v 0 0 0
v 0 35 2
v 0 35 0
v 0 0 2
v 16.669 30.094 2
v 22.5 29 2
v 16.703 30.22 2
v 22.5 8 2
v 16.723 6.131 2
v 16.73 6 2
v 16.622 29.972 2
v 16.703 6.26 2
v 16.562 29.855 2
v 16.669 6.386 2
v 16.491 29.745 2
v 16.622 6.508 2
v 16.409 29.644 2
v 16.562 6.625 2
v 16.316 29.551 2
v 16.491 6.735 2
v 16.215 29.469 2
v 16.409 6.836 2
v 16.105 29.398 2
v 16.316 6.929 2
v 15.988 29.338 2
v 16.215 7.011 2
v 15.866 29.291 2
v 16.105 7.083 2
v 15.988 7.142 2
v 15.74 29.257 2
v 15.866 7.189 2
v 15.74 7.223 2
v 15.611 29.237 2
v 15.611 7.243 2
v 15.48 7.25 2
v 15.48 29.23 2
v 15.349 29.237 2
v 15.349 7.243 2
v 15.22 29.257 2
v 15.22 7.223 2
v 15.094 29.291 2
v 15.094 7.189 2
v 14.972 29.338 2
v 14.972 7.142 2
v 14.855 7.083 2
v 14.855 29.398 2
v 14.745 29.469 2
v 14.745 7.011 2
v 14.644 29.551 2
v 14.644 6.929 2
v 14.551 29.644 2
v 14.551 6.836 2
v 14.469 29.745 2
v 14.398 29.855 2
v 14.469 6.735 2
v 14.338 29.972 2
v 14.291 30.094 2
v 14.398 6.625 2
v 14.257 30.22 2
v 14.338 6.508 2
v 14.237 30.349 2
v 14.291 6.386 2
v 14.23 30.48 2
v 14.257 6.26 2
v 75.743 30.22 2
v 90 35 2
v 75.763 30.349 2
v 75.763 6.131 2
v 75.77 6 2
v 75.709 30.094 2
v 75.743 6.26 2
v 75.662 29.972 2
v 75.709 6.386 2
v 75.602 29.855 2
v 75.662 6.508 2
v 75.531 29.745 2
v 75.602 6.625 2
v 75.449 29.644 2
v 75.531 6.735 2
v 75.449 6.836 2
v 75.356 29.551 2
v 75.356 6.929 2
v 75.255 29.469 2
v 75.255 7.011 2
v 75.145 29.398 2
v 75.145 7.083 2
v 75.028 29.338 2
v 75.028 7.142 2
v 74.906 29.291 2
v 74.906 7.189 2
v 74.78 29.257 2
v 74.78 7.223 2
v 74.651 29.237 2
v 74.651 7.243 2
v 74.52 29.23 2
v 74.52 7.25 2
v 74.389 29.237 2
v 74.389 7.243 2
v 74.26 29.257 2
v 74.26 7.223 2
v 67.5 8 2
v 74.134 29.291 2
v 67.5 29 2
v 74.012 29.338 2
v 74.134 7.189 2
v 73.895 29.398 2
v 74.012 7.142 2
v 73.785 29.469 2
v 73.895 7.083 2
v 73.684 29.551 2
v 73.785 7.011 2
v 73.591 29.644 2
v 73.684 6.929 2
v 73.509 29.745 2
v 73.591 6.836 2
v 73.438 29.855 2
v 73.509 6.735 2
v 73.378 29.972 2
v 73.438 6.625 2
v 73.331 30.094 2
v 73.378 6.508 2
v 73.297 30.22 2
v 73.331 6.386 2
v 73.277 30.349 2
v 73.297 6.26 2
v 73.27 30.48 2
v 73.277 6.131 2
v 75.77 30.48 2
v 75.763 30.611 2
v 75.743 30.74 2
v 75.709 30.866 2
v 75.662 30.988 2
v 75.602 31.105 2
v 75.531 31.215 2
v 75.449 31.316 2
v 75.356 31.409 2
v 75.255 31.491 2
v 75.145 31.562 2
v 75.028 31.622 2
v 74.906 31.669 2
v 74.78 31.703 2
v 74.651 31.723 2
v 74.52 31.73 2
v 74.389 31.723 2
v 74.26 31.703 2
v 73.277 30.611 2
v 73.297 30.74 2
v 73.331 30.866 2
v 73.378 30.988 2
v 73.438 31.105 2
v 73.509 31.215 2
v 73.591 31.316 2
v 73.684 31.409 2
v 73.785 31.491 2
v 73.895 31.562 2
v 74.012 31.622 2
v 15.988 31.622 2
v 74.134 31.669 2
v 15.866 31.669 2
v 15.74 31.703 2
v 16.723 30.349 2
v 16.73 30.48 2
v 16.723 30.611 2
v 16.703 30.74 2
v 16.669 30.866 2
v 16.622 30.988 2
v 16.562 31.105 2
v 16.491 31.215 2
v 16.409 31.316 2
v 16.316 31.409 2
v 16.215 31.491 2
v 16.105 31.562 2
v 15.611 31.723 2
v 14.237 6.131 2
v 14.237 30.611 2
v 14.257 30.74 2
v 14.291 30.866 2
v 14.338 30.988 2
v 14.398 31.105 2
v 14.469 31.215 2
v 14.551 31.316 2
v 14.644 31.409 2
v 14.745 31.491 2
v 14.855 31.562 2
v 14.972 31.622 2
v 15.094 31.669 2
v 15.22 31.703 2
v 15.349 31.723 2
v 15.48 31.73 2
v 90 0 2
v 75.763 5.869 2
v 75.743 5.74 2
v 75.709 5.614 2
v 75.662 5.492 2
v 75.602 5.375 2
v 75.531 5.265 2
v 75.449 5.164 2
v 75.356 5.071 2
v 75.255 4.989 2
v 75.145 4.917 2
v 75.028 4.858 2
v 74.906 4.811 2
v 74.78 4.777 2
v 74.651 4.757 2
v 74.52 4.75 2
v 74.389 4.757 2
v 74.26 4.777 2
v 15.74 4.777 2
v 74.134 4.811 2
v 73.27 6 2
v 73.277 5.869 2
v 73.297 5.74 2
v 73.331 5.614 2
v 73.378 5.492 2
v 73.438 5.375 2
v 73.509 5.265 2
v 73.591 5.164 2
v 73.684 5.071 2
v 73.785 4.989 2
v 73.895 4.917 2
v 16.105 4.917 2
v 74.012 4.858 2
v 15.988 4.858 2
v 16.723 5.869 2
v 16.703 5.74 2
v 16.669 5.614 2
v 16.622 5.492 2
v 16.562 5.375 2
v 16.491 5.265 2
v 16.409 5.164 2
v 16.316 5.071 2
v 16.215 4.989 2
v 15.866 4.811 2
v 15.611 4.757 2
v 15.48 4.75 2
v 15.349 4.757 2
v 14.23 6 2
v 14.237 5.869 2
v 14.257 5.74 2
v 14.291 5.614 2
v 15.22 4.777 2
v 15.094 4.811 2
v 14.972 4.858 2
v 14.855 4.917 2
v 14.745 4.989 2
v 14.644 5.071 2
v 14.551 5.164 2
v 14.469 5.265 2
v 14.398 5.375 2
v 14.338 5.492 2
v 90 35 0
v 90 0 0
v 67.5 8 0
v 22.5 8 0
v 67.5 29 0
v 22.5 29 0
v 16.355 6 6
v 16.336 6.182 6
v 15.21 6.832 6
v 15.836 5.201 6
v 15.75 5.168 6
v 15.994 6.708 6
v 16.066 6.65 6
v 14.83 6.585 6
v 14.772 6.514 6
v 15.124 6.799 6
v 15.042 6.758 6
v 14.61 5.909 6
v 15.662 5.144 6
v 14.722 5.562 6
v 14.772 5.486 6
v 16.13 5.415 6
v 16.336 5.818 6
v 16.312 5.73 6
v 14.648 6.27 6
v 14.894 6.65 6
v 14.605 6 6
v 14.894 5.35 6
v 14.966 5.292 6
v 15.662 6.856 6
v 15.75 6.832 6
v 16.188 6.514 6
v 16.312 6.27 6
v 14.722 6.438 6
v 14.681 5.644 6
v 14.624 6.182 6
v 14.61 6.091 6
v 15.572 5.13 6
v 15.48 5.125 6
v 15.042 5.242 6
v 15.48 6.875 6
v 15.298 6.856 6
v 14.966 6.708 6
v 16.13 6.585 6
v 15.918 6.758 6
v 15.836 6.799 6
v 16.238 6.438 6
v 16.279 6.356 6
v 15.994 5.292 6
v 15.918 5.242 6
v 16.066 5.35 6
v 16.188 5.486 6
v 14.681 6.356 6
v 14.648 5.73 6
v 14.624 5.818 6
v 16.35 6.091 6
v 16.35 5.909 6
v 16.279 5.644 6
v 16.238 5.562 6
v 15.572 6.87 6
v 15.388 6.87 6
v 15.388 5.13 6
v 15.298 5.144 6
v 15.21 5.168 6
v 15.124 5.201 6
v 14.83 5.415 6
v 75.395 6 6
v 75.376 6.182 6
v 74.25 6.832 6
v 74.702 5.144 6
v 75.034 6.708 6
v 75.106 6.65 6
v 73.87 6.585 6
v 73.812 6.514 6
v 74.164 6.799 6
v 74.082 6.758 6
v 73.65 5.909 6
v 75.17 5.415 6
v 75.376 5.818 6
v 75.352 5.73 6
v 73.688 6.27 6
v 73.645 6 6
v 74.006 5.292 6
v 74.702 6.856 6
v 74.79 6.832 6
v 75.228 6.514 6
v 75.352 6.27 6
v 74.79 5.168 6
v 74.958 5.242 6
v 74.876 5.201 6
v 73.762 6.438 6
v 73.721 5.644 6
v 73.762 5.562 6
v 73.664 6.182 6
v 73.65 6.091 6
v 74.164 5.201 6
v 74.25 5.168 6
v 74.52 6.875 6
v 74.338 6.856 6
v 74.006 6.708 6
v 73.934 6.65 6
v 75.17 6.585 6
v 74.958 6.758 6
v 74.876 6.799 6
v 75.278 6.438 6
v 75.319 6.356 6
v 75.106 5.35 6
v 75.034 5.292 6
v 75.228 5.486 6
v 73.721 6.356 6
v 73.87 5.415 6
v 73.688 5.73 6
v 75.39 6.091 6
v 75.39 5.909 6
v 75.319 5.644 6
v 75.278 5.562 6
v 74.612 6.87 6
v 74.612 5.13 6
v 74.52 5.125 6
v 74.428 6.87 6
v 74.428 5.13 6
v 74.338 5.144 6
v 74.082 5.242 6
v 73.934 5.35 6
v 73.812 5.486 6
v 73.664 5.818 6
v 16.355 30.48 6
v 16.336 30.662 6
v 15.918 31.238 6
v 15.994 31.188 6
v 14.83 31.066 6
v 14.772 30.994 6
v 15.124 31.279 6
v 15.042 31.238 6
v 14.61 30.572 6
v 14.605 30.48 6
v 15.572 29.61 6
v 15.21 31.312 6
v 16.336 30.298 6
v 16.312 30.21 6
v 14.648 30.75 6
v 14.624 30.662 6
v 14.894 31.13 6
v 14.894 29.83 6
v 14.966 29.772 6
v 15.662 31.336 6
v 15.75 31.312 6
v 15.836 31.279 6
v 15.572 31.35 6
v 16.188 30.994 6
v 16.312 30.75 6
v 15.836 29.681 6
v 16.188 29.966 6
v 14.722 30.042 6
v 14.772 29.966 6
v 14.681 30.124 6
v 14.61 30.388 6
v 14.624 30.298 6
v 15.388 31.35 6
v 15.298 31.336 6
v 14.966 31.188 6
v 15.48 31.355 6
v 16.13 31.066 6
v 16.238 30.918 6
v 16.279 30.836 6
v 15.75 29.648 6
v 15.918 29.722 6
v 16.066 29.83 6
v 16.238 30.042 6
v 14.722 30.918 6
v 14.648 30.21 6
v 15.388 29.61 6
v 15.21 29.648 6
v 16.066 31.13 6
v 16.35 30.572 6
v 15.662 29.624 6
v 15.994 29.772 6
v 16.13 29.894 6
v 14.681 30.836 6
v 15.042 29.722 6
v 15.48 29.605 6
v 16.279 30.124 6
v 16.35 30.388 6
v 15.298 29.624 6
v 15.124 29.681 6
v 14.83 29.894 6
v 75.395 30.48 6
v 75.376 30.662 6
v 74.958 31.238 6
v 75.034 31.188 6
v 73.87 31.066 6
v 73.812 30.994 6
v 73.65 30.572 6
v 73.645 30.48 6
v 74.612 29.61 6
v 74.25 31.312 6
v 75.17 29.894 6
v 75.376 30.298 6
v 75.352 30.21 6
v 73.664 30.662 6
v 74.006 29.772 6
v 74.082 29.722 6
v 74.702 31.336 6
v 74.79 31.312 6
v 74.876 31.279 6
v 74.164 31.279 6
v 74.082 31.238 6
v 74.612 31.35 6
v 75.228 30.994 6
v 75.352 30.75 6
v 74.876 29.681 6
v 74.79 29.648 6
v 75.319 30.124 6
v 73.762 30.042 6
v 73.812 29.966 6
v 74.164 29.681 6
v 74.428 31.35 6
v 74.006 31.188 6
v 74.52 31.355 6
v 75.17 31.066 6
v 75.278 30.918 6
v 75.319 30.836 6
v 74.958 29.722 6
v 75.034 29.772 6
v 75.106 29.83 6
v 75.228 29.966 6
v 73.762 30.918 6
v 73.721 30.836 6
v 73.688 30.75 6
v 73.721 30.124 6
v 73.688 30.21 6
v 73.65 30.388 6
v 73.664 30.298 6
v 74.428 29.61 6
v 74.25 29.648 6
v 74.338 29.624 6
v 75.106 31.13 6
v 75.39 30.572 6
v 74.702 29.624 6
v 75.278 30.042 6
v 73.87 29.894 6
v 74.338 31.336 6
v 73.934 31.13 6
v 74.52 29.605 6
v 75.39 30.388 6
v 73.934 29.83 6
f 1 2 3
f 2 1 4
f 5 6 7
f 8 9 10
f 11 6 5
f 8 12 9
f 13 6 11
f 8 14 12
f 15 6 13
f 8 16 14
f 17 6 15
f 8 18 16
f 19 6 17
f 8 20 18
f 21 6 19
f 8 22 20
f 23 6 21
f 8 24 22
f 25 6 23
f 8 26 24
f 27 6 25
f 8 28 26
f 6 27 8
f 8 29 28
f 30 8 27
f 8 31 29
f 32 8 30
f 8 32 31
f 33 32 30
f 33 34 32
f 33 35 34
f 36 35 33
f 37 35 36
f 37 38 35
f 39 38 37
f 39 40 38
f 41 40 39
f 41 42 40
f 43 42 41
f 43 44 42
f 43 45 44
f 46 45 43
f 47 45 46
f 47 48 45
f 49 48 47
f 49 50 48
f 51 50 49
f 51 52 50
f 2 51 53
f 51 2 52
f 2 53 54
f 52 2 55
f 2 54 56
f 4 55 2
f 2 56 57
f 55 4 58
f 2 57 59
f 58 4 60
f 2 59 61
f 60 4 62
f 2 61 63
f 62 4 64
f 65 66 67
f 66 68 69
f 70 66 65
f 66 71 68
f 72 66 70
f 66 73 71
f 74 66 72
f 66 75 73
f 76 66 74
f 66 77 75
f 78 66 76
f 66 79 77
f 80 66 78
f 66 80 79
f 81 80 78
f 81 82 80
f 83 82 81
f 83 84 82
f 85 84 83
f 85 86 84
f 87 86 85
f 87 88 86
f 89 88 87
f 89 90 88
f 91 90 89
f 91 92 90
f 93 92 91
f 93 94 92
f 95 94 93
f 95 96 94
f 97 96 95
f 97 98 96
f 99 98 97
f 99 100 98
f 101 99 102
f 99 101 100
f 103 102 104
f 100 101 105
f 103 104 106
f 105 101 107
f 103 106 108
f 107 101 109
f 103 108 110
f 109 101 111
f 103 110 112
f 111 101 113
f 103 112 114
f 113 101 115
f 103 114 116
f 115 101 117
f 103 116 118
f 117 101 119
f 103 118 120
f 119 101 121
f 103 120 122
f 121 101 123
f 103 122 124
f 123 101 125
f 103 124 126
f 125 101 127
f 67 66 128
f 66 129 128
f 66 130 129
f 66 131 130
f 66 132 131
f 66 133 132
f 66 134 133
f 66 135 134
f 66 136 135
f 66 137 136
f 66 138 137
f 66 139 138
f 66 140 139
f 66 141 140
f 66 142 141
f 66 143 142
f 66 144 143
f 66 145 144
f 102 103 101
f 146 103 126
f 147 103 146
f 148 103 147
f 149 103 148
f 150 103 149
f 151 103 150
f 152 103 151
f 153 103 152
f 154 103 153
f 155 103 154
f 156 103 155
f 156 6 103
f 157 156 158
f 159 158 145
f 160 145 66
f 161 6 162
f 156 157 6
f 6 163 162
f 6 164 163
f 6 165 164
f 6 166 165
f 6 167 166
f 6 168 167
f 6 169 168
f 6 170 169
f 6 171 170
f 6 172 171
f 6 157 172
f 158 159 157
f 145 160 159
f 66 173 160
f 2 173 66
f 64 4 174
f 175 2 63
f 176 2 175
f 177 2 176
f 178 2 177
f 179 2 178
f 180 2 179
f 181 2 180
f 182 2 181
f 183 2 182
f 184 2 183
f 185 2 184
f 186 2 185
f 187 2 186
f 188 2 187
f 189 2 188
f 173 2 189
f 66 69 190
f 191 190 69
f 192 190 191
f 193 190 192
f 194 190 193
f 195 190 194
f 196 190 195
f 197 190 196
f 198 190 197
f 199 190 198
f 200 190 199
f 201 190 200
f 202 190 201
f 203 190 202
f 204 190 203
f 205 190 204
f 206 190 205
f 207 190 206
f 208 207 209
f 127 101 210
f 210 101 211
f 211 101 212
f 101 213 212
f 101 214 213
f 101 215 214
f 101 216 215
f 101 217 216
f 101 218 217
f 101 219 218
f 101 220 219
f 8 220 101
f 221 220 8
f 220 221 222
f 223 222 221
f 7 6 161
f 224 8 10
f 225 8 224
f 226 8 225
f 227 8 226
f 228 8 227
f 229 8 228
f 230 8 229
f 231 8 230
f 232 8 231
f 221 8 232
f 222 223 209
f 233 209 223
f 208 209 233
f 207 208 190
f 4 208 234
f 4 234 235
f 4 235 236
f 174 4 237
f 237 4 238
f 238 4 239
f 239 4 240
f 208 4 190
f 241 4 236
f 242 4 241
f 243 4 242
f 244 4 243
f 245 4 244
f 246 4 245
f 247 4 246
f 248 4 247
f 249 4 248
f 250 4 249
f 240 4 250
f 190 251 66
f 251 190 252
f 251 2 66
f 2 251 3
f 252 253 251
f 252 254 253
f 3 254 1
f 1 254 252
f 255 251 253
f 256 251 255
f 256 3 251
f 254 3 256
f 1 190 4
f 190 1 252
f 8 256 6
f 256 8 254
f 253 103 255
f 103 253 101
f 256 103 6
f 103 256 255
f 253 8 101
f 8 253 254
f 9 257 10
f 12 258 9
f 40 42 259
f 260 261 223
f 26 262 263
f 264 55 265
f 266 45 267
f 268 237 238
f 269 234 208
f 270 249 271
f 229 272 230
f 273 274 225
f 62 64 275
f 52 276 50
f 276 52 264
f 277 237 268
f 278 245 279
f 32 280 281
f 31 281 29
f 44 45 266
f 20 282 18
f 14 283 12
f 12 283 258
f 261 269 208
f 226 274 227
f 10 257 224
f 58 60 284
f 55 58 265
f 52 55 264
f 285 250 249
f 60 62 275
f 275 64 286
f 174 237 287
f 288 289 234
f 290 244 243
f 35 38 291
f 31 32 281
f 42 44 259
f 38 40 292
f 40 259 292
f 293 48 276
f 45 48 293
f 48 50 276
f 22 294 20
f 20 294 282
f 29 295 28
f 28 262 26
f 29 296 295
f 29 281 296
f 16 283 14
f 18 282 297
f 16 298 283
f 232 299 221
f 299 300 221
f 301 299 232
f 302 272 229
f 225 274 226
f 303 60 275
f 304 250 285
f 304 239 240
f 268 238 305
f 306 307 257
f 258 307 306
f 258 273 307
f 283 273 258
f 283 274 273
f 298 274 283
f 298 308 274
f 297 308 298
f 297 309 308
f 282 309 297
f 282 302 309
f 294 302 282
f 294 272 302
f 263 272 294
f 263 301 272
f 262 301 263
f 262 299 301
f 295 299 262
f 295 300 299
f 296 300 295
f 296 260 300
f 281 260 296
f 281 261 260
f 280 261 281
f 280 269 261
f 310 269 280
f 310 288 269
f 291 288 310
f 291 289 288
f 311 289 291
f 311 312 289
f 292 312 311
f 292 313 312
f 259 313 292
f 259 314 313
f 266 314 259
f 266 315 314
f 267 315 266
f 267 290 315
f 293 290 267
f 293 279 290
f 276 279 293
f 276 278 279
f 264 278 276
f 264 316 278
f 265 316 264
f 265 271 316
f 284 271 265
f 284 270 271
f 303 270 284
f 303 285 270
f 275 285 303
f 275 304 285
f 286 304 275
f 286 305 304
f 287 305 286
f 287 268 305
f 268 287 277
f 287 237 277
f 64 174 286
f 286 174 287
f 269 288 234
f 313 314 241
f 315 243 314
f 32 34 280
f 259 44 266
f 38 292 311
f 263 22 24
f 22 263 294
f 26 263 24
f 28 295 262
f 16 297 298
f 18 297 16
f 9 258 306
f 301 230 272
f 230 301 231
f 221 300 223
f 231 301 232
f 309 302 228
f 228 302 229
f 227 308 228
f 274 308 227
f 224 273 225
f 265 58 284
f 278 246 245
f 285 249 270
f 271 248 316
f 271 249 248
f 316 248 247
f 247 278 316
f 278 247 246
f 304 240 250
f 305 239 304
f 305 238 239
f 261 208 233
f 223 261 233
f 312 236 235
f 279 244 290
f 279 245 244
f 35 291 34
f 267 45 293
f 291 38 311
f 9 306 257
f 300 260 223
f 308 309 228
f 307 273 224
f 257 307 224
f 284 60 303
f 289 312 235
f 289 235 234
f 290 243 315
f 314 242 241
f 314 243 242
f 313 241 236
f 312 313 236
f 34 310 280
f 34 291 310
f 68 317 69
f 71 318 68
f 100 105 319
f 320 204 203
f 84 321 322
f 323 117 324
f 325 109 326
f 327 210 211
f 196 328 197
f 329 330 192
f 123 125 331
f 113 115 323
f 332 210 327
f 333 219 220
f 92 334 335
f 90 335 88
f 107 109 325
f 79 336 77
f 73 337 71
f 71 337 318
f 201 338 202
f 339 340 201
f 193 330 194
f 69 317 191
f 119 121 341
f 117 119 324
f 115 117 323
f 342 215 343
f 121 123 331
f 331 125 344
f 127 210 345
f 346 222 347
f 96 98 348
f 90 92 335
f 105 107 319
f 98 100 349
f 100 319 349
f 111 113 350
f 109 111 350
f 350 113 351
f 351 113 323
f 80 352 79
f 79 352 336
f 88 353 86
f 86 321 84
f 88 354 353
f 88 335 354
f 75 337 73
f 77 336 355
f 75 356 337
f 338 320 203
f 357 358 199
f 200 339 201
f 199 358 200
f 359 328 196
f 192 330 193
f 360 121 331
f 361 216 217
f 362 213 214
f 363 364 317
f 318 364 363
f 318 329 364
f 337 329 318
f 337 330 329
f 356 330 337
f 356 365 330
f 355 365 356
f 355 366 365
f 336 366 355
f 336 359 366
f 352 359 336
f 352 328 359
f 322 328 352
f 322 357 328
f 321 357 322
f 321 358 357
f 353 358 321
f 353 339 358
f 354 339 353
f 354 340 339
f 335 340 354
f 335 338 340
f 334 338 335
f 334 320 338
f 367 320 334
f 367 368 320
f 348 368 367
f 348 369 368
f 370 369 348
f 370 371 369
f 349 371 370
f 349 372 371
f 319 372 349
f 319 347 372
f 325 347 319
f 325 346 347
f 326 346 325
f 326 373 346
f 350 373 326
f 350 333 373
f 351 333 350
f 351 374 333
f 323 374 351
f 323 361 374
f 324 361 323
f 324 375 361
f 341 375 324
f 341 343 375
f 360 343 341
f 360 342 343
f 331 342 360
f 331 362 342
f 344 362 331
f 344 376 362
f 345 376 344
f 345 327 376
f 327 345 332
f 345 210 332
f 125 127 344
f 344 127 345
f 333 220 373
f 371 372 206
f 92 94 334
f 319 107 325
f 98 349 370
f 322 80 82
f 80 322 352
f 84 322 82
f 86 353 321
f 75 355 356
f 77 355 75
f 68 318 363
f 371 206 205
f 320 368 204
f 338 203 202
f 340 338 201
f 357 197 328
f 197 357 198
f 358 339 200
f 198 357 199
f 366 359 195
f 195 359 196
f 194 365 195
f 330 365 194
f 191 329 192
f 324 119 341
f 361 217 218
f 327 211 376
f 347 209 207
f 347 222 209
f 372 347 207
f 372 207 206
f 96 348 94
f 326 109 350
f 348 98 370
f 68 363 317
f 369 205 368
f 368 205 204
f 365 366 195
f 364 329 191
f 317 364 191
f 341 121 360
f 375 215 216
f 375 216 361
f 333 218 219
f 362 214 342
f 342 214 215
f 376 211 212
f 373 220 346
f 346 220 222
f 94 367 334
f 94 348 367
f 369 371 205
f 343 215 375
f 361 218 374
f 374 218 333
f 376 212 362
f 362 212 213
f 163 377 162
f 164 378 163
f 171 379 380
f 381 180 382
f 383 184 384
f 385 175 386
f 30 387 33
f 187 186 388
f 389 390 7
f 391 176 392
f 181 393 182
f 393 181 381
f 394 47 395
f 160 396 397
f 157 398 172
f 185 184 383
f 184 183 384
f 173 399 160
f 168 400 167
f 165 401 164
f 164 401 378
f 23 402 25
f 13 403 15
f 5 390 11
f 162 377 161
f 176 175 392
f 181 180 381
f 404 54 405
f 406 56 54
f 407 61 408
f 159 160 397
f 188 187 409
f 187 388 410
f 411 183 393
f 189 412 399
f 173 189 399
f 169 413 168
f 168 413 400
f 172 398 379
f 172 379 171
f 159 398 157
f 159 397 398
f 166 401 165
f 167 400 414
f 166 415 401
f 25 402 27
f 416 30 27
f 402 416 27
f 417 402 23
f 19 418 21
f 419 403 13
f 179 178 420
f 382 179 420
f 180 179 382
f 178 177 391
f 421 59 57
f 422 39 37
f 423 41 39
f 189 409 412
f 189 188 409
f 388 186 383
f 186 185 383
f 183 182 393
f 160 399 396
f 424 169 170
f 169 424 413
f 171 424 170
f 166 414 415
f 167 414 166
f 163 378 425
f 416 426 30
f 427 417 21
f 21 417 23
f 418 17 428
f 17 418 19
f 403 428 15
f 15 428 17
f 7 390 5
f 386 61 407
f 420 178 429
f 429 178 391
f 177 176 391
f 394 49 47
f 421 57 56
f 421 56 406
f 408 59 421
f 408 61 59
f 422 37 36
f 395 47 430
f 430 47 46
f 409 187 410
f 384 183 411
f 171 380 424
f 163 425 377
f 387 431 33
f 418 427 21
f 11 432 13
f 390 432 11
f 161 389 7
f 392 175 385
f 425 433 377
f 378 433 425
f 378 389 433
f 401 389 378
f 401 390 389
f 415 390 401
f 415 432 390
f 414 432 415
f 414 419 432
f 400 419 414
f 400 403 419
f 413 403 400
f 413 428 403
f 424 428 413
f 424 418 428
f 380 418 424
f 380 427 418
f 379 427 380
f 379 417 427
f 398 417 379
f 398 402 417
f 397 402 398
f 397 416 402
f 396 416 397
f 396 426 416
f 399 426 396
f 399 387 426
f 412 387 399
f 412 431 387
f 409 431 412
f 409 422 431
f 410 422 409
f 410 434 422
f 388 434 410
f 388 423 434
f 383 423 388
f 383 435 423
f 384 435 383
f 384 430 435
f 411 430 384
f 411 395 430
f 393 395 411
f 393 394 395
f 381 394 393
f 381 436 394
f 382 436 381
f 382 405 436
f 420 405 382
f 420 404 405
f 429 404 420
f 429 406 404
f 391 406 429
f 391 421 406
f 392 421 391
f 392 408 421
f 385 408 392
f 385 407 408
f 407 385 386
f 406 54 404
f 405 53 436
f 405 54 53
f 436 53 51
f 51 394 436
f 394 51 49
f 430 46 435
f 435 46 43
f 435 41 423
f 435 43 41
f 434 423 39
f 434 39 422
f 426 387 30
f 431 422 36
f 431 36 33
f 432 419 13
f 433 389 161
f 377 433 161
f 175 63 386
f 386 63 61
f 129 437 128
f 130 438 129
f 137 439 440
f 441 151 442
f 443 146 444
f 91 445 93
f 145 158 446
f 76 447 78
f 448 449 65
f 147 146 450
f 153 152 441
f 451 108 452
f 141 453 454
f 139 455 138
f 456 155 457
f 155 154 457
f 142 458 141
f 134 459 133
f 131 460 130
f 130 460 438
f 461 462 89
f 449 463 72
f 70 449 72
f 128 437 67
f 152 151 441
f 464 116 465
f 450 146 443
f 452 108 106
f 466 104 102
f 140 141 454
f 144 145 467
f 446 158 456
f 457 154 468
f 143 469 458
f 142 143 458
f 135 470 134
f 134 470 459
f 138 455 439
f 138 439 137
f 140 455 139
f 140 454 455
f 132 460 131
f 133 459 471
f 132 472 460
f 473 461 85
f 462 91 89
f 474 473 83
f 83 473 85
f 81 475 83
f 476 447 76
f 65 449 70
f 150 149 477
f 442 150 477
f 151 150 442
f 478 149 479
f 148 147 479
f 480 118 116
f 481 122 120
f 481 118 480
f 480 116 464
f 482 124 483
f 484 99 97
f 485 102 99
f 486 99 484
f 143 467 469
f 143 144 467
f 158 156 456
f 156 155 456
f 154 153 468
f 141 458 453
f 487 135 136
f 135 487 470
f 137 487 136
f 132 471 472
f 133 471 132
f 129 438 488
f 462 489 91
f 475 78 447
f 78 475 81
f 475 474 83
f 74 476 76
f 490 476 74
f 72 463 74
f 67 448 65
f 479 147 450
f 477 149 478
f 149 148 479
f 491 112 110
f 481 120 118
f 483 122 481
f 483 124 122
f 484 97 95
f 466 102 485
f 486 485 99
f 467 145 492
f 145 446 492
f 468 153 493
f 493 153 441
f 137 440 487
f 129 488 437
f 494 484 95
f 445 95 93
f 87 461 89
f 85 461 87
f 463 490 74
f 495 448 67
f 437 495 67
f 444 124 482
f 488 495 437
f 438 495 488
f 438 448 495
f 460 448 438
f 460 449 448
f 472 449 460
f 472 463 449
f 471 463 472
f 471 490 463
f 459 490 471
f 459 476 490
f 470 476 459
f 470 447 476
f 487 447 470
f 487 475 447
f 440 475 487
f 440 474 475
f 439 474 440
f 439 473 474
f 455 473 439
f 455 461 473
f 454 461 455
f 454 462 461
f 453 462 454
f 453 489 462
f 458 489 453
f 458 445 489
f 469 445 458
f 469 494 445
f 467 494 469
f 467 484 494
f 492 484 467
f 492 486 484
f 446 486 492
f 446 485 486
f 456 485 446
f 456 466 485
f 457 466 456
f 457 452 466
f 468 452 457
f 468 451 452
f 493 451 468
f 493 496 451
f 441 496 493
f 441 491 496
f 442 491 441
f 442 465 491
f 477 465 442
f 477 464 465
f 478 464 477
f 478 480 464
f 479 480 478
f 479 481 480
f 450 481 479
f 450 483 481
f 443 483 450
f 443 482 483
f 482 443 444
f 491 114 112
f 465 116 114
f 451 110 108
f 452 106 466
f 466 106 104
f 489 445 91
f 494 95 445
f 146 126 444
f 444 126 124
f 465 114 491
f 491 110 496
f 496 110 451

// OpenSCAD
// file: ../_selector_params.scad
// Ansible widget cases
//
// Parameters specific to selector types
// -----------------------------------------------------------------------------

// Magnet selector

MAGNET_BOARD_WIDTH = 23;
MAGNET_BOARD_HEIGHT = 21;

MAGNET_HOLE_OFFSET = 2;
MAGNET_HOLE_WIDTH = MAGNET_BOARD_WIDTH - MAGNET_HOLE_OFFSET;
MAGNET_HOLE_LENGTH = 10.5;

MAGNET_BOARD_INSET = 1;
MAGNET_BOARD_INSET_WIDTH = MAGNET_BOARD_WIDTH + MAGNET_BOARD_INSET;
MAGNET_BOARD_INSET_HEIGHT = MAGNET_BOARD_HEIGHT + MAGNET_BOARD_INSET;
MAGNET_BOARD_INSET_DEPTH = 1;

MAGNET_PEG_HEIGHT = 4;
MAGNET_PEG_RADIUS_BASE = 2.5 / 2;
MAGNET_PEG_RADIUS_TOP = 1.75 / 2;
MAGNET_PEG_OFFSET_X = -0.25;
MAGNET_PEG_OFFSET_Y = 0.7;
MAGNET_PEG_OFFSET_Z = -MAGNET_BOARD_INSET;

MAGNET_PEG_HOLE_RADIUS = 2.5 / 2;
MAGNET_PEG_HOLE_OFFSET_X = 1 + MAGNET_PEG_HOLE_RADIUS;
MAGNET_PEG_HOLE_OFFSET_Y = 1 + MAGNET_PEG_HOLE_RADIUS;

// -----------------------------------------------------------------------------

// Light selector

LIGHT_BOARD_WIDTH = 19;
LIGHT_BOARD_HEIGHT = 16;

LIGHT_HOLE_OFFSET = 2;
LIGHT_HOLE_WIDTH = LIGHT_BOARD_WIDTH - LIGHT_HOLE_OFFSET;
LIGHT_HOLE_LENGTH = 8;

LIGHT_BOARD_INSET = 1;
LIGHT_BOARD_INSET_WIDTH = LIGHT_BOARD_WIDTH + LIGHT_BOARD_INSET;
LIGHT_BOARD_INSET_HEIGHT = LIGHT_BOARD_HEIGHT + LIGHT_BOARD_INSET;
LIGHT_BOARD_INSET_DEPTH = 1;

LIGHT_PEG_HEIGHT = 4;
LIGHT_PEG_RADIUS_BASE = 2.5 / 2;
LIGHT_PEG_RADIUS_TOP = 1.75 / 2;
LIGHT_PEG_OFFSET_X = 1.65;
LIGHT_PEG_OFFSET_Y = 3.65;
LIGHT_PEG_OFFSET_Z = -LIGHT_BOARD_INSET;

LIGHT_PEG_HOLE_RADIUS = 2.3 / 2;
LIGHT_PEG_HOLE_OFFSET_X = 1 + LIGHT_PEG_HOLE_RADIUS;
LIGHT_PEG_HOLE_OFFSET_Y = 1.5 + LIGHT_PEG_HOLE_RADIUS;
// file: ../_widget_params.scad
// Ansible widget cases
//
// Parameters specific to widget types
// -----------------------------------------------------------------------------

// LED widget

LED_LEAD_DISTANCE = 2.5; // 2.5mm apart

LED_HOLE_RADIUS = 1.5 / 2;

LED_SHELF_WIDTH = 3;
LED_SHELF_HEIGHT = 7;

LED_SHELF_X = 23;
LED_SHELF_Y = 5;

LED_SHELF2_X = 5;
LED_SHELF2_Y = 5;
// file: ../params.scad
// Ansible widget cases
//
// Params: case parameters
// -----------------------------------------------------------------------------

// Overall case
CASE_WIDTH = 90;
CASE_LENGTH = 140;
CASE_HEIGHT = 55;
WALL_THICKNESS = 3;
FLOOR_THICKNESS = WALL_THICKNESS;
SEGMENTS = 60;

// -----------------------------------------------------------------------------

// Front door
FRONT_DOOR_THICKNESS = 3;
FRONT_DOOR_INSET = 1;  // how much gap to give
FRONT_DOOR_OFFSET_Y = 4; // how far in from the edge
FRONT_DOOR_WIDTH = CASE_WIDTH - WALL_THICKNESS - FRONT_DOOR_INSET;
FRONT_DOOR_HEIGHT = CASE_HEIGHT - (WALL_THICKNESS * 2) + (FRONT_DOOR_INSET * 2);

// -----------------------------------------------------------------------------

// Pi shelf
SHELF_THICKNESS = WALL_THICKNESS - 1;
SHELF_Y = 47;
SHELF_LENGTH = 35;
SHELF_HEIGHT = 28;
SHELF_PEG_OFFSET_X = 3.5;
SHELF_PEG_OFFSET_Y = 3.0;
SHELF_PEG_HEIGHT = 4;
SHELF_PEG_RADIUS_BASE = 2.5 / 2;
SHELF_PEG_RADIUS_TOP = 1.75 / 2;

SHELF_HOLE_WIDTH = CASE_WIDTH * 0.5;
SHELF_HOLE_LENGTH = SHELF_LENGTH * 0.6;
SHELF_HOLE_OFFSET_Y = 8;

// -----------------------------------------------------------------------------

// Lid
LID_THICKNESS = 2;
DOCK_BORDER_HEIGHT = 9;
DOCK_BORDER_THICKNESS = 2;
DOCK_INSET = 2;

// Lid ridge
RIDGE_THICKNESS = WALL_THICKNESS * 2;
RIDGE_PEG_HEIGHT = 4;
RIDGE_PEG_RADIUS_BASE = 2.5 / 2;
RIDGE_PEG_RADIUS_TOP = 1.75 / 2;
RIDGE_PEG_RADIUS_HOLE = 2.3 / 2;
RIDGE_PEG_OFFSET = 5;

// -----------------------------------------------------------------------------

// General mount
MOUNT_HEIGHT = 15;
MOUNT_THICKNESS = 3;
MOUNT_SEGMENTS = 360;
GRIP_HEIGHT = 3;
GRIP_THICKNESS = 2;
LABEL_MOUNT_HEIGHT = 1;
LABEL_MOUNT_FONT_SIZE = 6;
LABEL_MOUNT_FONT = "Avenir Pro:style=Bold";

// Selector dock
SELECTOR_DOCK_Y = CASE_LENGTH * .78;
SELECTOR_DOCK_RADIUS = 18;
SELECTOR_DOCK_BORDER_RADIUS = SELECTOR_DOCK_RADIUS + DOCK_BORDER_THICKNESS;
SELECTOR_HOLE_OFFSET = DOCK_BORDER_THICKNESS;
SELECTOR_HOLE_SIZE = SELECTOR_DOCK_RADIUS - SELECTOR_HOLE_OFFSET;
SELECTOR_LABEL_Y = -SELECTOR_DOCK_RADIUS + 1;

// Selector mount
SELECTOR_MOUNT_COLOR = [0.6, 0.6, 0.8];
SELECTOR_MOUNT_OFFSET = 0.5;
SELECTOR_MOUNT_THICKNESS = WALL_THICKNESS;
SELECTOR_MOUNT_RADIUS = SELECTOR_DOCK_RADIUS - SELECTOR_MOUNT_OFFSET;
SELECTOR_HOLE_RADIUS = SELECTOR_MOUNT_RADIUS - SELECTOR_HOLE_OFFSET;

SELECTOR_MOUNT_NOTCH_SIZE = 15;
SELECTOR_MOUNT_NOTCH_HEIGHT = MOUNT_HEIGHT - 5;

// Widget dock
WIDGET_DOCK_Y = CASE_LENGTH * .15;
WIDGET_DOCK_SIZE = 32;
WIDGET_BORDER_RADIUS = 2.5;
WIDGET_HOLE_OFFSET = DOCK_BORDER_THICKNESS * 2;
WIDGET_HOLE_SIZE = WIDGET_DOCK_SIZE - WIDGET_HOLE_OFFSET;

// Widget mount
WIDGET_MOUNT_COLOR = [0.6, 0.8, 0.6];
WIDGET_MOUNT_OFFSET = 1;
WIDGET_MOUNT_THICKNESS = 2;
WIDGET_MOUNT_SIZE = WIDGET_DOCK_SIZE - WIDGET_MOUNT_OFFSET;
WIDGET_MOUNT_HOLE_SIZE = WIDGET_MOUNT_SIZE - WIDGET_HOLE_OFFSET;

WIDGET_MOUNT_NOTCH_SIZE = 15;
WIDGET_MOUNT_NOTCH_HEIGHT = MOUNT_HEIGHT - 5;

// -----------------------------------------------------------------------------

// Pi
PI_COLOR = [0.3, 0.4, 0.3];
PI_Y = SHELF_Y + 5;
PI_WIDTH = 66.04;
PI_LENGTH = 30.48;
PI_DEPTH = 1.5;
PI_HOLE_RADIUS = 2 / 2;
PI_HOLE_OFFSET_X = 3.5;
PI_HOLE_OFFSET_Y = 3.0;

// Battery pack
BATTERY_COLOR = [0.2, 0.2, 0.2];
BATTERY_WIDTH = 68.58;
BATTERY_LENGTH = 96.52;
BATTERY_DEPTH = 22.86;

BATTERY_DIAMETER = 23;

BATTERY_GUIDE_OFFSET_X = -5.5;
BATTERY_GUIDE_WIDTH = 4;
BATTERY_GUIDE_HEIGHT = 4;
BATTERY_GUIDE_OFFSET_Y = 30;
BATTERY_GUIDE_LENGTH = 40;

// -----------------------------------------------------------------------------

// Floor hole
FLOOR_HOLE_WIDTH = BATTERY_WIDTH * .6;
FLOOR_HOLE_LENGTH = BATTERY_LENGTH * .8;

// -----------------------------------------------------------------------------

// Hatching

HATCH_FRAME_OFFSET = 5;
HATCH_SIZE = 6;
HATCH_GAP = 10;
SIDE_HATCH_LENGTH = CASE_LENGTH - 15;

// -----------------------------------------------------------------------------

include <_widget_params.scad>;
include <_selector_params.scad>;
// main file
// Ansible widget cases
//
// Case: walls and floor for case
// -----------------------------------------------------------------------------

include <../params.scad>;

// -----------------------------------------------------------------------------

module _pi_shelf() {
	difference() {
		cube([CASE_WIDTH, SHELF_LENGTH, SHELF_THICKNESS]);

		// Shelf hole
		translate([
			// Center it
			(CASE_WIDTH / 2) - (SHELF_HOLE_WIDTH / 2),
			// Move it down just a bit
			SHELF_HOLE_OFFSET_Y,
			// Cut through all the way
			-2
		])
			cube([SHELF_HOLE_WIDTH, SHELF_HOLE_LENGTH, SHELF_THICKNESS + 10]);
	}

	// Pi pegs
	translate([
		// Center it
		(CASE_WIDTH / 2) - (PI_WIDTH / 2),
		// Move it down to the right spot on the shelf
		3,
		// Put it right on top of the shelf
		SHELF_THICKNESS
	])
		_pi_pegs();
}

// -----------------------------------------------------------------------------

module _pi_pegs() {    
    translate([
		SHELF_PEG_OFFSET_X,
		SHELF_PEG_OFFSET_Y,
		0
	])
        cylinder(SHELF_PEG_HEIGHT, SHELF_PEG_RADIUS_BASE, SHELF_PEG_RADIUS_TOP, $fn=SEGMENTS);

    translate([
		// Offset from end of Pi
		PI_WIDTH - SHELF_PEG_OFFSET_X,
		SHELF_PEG_OFFSET_Y,
		0
	])
        cylinder(SHELF_PEG_HEIGHT, SHELF_PEG_RADIUS_BASE, SHELF_PEG_RADIUS_TOP, $fn=SEGMENTS);

    translate([
		SHELF_PEG_OFFSET_X,
		// Offset from end of Pi
		PI_LENGTH - SHELF_PEG_OFFSET_Y,
		0
	])
        cylinder(SHELF_PEG_HEIGHT, SHELF_PEG_RADIUS_BASE, SHELF_PEG_RADIUS_TOP, $fn=SEGMENTS);

    translate([
		// Offset from end of Pi
		PI_WIDTH - SHELF_PEG_OFFSET_X,
		// Offset from end of Pi
		PI_LENGTH - SHELF_PEG_OFFSET_Y,
		0
	])
        cylinder(SHELF_PEG_HEIGHT, SHELF_PEG_RADIUS_BASE, SHELF_PEG_RADIUS_TOP, $fn=SEGMENTS);
}

// -----------------------------------------------------------------------------

_pi_shelf();
